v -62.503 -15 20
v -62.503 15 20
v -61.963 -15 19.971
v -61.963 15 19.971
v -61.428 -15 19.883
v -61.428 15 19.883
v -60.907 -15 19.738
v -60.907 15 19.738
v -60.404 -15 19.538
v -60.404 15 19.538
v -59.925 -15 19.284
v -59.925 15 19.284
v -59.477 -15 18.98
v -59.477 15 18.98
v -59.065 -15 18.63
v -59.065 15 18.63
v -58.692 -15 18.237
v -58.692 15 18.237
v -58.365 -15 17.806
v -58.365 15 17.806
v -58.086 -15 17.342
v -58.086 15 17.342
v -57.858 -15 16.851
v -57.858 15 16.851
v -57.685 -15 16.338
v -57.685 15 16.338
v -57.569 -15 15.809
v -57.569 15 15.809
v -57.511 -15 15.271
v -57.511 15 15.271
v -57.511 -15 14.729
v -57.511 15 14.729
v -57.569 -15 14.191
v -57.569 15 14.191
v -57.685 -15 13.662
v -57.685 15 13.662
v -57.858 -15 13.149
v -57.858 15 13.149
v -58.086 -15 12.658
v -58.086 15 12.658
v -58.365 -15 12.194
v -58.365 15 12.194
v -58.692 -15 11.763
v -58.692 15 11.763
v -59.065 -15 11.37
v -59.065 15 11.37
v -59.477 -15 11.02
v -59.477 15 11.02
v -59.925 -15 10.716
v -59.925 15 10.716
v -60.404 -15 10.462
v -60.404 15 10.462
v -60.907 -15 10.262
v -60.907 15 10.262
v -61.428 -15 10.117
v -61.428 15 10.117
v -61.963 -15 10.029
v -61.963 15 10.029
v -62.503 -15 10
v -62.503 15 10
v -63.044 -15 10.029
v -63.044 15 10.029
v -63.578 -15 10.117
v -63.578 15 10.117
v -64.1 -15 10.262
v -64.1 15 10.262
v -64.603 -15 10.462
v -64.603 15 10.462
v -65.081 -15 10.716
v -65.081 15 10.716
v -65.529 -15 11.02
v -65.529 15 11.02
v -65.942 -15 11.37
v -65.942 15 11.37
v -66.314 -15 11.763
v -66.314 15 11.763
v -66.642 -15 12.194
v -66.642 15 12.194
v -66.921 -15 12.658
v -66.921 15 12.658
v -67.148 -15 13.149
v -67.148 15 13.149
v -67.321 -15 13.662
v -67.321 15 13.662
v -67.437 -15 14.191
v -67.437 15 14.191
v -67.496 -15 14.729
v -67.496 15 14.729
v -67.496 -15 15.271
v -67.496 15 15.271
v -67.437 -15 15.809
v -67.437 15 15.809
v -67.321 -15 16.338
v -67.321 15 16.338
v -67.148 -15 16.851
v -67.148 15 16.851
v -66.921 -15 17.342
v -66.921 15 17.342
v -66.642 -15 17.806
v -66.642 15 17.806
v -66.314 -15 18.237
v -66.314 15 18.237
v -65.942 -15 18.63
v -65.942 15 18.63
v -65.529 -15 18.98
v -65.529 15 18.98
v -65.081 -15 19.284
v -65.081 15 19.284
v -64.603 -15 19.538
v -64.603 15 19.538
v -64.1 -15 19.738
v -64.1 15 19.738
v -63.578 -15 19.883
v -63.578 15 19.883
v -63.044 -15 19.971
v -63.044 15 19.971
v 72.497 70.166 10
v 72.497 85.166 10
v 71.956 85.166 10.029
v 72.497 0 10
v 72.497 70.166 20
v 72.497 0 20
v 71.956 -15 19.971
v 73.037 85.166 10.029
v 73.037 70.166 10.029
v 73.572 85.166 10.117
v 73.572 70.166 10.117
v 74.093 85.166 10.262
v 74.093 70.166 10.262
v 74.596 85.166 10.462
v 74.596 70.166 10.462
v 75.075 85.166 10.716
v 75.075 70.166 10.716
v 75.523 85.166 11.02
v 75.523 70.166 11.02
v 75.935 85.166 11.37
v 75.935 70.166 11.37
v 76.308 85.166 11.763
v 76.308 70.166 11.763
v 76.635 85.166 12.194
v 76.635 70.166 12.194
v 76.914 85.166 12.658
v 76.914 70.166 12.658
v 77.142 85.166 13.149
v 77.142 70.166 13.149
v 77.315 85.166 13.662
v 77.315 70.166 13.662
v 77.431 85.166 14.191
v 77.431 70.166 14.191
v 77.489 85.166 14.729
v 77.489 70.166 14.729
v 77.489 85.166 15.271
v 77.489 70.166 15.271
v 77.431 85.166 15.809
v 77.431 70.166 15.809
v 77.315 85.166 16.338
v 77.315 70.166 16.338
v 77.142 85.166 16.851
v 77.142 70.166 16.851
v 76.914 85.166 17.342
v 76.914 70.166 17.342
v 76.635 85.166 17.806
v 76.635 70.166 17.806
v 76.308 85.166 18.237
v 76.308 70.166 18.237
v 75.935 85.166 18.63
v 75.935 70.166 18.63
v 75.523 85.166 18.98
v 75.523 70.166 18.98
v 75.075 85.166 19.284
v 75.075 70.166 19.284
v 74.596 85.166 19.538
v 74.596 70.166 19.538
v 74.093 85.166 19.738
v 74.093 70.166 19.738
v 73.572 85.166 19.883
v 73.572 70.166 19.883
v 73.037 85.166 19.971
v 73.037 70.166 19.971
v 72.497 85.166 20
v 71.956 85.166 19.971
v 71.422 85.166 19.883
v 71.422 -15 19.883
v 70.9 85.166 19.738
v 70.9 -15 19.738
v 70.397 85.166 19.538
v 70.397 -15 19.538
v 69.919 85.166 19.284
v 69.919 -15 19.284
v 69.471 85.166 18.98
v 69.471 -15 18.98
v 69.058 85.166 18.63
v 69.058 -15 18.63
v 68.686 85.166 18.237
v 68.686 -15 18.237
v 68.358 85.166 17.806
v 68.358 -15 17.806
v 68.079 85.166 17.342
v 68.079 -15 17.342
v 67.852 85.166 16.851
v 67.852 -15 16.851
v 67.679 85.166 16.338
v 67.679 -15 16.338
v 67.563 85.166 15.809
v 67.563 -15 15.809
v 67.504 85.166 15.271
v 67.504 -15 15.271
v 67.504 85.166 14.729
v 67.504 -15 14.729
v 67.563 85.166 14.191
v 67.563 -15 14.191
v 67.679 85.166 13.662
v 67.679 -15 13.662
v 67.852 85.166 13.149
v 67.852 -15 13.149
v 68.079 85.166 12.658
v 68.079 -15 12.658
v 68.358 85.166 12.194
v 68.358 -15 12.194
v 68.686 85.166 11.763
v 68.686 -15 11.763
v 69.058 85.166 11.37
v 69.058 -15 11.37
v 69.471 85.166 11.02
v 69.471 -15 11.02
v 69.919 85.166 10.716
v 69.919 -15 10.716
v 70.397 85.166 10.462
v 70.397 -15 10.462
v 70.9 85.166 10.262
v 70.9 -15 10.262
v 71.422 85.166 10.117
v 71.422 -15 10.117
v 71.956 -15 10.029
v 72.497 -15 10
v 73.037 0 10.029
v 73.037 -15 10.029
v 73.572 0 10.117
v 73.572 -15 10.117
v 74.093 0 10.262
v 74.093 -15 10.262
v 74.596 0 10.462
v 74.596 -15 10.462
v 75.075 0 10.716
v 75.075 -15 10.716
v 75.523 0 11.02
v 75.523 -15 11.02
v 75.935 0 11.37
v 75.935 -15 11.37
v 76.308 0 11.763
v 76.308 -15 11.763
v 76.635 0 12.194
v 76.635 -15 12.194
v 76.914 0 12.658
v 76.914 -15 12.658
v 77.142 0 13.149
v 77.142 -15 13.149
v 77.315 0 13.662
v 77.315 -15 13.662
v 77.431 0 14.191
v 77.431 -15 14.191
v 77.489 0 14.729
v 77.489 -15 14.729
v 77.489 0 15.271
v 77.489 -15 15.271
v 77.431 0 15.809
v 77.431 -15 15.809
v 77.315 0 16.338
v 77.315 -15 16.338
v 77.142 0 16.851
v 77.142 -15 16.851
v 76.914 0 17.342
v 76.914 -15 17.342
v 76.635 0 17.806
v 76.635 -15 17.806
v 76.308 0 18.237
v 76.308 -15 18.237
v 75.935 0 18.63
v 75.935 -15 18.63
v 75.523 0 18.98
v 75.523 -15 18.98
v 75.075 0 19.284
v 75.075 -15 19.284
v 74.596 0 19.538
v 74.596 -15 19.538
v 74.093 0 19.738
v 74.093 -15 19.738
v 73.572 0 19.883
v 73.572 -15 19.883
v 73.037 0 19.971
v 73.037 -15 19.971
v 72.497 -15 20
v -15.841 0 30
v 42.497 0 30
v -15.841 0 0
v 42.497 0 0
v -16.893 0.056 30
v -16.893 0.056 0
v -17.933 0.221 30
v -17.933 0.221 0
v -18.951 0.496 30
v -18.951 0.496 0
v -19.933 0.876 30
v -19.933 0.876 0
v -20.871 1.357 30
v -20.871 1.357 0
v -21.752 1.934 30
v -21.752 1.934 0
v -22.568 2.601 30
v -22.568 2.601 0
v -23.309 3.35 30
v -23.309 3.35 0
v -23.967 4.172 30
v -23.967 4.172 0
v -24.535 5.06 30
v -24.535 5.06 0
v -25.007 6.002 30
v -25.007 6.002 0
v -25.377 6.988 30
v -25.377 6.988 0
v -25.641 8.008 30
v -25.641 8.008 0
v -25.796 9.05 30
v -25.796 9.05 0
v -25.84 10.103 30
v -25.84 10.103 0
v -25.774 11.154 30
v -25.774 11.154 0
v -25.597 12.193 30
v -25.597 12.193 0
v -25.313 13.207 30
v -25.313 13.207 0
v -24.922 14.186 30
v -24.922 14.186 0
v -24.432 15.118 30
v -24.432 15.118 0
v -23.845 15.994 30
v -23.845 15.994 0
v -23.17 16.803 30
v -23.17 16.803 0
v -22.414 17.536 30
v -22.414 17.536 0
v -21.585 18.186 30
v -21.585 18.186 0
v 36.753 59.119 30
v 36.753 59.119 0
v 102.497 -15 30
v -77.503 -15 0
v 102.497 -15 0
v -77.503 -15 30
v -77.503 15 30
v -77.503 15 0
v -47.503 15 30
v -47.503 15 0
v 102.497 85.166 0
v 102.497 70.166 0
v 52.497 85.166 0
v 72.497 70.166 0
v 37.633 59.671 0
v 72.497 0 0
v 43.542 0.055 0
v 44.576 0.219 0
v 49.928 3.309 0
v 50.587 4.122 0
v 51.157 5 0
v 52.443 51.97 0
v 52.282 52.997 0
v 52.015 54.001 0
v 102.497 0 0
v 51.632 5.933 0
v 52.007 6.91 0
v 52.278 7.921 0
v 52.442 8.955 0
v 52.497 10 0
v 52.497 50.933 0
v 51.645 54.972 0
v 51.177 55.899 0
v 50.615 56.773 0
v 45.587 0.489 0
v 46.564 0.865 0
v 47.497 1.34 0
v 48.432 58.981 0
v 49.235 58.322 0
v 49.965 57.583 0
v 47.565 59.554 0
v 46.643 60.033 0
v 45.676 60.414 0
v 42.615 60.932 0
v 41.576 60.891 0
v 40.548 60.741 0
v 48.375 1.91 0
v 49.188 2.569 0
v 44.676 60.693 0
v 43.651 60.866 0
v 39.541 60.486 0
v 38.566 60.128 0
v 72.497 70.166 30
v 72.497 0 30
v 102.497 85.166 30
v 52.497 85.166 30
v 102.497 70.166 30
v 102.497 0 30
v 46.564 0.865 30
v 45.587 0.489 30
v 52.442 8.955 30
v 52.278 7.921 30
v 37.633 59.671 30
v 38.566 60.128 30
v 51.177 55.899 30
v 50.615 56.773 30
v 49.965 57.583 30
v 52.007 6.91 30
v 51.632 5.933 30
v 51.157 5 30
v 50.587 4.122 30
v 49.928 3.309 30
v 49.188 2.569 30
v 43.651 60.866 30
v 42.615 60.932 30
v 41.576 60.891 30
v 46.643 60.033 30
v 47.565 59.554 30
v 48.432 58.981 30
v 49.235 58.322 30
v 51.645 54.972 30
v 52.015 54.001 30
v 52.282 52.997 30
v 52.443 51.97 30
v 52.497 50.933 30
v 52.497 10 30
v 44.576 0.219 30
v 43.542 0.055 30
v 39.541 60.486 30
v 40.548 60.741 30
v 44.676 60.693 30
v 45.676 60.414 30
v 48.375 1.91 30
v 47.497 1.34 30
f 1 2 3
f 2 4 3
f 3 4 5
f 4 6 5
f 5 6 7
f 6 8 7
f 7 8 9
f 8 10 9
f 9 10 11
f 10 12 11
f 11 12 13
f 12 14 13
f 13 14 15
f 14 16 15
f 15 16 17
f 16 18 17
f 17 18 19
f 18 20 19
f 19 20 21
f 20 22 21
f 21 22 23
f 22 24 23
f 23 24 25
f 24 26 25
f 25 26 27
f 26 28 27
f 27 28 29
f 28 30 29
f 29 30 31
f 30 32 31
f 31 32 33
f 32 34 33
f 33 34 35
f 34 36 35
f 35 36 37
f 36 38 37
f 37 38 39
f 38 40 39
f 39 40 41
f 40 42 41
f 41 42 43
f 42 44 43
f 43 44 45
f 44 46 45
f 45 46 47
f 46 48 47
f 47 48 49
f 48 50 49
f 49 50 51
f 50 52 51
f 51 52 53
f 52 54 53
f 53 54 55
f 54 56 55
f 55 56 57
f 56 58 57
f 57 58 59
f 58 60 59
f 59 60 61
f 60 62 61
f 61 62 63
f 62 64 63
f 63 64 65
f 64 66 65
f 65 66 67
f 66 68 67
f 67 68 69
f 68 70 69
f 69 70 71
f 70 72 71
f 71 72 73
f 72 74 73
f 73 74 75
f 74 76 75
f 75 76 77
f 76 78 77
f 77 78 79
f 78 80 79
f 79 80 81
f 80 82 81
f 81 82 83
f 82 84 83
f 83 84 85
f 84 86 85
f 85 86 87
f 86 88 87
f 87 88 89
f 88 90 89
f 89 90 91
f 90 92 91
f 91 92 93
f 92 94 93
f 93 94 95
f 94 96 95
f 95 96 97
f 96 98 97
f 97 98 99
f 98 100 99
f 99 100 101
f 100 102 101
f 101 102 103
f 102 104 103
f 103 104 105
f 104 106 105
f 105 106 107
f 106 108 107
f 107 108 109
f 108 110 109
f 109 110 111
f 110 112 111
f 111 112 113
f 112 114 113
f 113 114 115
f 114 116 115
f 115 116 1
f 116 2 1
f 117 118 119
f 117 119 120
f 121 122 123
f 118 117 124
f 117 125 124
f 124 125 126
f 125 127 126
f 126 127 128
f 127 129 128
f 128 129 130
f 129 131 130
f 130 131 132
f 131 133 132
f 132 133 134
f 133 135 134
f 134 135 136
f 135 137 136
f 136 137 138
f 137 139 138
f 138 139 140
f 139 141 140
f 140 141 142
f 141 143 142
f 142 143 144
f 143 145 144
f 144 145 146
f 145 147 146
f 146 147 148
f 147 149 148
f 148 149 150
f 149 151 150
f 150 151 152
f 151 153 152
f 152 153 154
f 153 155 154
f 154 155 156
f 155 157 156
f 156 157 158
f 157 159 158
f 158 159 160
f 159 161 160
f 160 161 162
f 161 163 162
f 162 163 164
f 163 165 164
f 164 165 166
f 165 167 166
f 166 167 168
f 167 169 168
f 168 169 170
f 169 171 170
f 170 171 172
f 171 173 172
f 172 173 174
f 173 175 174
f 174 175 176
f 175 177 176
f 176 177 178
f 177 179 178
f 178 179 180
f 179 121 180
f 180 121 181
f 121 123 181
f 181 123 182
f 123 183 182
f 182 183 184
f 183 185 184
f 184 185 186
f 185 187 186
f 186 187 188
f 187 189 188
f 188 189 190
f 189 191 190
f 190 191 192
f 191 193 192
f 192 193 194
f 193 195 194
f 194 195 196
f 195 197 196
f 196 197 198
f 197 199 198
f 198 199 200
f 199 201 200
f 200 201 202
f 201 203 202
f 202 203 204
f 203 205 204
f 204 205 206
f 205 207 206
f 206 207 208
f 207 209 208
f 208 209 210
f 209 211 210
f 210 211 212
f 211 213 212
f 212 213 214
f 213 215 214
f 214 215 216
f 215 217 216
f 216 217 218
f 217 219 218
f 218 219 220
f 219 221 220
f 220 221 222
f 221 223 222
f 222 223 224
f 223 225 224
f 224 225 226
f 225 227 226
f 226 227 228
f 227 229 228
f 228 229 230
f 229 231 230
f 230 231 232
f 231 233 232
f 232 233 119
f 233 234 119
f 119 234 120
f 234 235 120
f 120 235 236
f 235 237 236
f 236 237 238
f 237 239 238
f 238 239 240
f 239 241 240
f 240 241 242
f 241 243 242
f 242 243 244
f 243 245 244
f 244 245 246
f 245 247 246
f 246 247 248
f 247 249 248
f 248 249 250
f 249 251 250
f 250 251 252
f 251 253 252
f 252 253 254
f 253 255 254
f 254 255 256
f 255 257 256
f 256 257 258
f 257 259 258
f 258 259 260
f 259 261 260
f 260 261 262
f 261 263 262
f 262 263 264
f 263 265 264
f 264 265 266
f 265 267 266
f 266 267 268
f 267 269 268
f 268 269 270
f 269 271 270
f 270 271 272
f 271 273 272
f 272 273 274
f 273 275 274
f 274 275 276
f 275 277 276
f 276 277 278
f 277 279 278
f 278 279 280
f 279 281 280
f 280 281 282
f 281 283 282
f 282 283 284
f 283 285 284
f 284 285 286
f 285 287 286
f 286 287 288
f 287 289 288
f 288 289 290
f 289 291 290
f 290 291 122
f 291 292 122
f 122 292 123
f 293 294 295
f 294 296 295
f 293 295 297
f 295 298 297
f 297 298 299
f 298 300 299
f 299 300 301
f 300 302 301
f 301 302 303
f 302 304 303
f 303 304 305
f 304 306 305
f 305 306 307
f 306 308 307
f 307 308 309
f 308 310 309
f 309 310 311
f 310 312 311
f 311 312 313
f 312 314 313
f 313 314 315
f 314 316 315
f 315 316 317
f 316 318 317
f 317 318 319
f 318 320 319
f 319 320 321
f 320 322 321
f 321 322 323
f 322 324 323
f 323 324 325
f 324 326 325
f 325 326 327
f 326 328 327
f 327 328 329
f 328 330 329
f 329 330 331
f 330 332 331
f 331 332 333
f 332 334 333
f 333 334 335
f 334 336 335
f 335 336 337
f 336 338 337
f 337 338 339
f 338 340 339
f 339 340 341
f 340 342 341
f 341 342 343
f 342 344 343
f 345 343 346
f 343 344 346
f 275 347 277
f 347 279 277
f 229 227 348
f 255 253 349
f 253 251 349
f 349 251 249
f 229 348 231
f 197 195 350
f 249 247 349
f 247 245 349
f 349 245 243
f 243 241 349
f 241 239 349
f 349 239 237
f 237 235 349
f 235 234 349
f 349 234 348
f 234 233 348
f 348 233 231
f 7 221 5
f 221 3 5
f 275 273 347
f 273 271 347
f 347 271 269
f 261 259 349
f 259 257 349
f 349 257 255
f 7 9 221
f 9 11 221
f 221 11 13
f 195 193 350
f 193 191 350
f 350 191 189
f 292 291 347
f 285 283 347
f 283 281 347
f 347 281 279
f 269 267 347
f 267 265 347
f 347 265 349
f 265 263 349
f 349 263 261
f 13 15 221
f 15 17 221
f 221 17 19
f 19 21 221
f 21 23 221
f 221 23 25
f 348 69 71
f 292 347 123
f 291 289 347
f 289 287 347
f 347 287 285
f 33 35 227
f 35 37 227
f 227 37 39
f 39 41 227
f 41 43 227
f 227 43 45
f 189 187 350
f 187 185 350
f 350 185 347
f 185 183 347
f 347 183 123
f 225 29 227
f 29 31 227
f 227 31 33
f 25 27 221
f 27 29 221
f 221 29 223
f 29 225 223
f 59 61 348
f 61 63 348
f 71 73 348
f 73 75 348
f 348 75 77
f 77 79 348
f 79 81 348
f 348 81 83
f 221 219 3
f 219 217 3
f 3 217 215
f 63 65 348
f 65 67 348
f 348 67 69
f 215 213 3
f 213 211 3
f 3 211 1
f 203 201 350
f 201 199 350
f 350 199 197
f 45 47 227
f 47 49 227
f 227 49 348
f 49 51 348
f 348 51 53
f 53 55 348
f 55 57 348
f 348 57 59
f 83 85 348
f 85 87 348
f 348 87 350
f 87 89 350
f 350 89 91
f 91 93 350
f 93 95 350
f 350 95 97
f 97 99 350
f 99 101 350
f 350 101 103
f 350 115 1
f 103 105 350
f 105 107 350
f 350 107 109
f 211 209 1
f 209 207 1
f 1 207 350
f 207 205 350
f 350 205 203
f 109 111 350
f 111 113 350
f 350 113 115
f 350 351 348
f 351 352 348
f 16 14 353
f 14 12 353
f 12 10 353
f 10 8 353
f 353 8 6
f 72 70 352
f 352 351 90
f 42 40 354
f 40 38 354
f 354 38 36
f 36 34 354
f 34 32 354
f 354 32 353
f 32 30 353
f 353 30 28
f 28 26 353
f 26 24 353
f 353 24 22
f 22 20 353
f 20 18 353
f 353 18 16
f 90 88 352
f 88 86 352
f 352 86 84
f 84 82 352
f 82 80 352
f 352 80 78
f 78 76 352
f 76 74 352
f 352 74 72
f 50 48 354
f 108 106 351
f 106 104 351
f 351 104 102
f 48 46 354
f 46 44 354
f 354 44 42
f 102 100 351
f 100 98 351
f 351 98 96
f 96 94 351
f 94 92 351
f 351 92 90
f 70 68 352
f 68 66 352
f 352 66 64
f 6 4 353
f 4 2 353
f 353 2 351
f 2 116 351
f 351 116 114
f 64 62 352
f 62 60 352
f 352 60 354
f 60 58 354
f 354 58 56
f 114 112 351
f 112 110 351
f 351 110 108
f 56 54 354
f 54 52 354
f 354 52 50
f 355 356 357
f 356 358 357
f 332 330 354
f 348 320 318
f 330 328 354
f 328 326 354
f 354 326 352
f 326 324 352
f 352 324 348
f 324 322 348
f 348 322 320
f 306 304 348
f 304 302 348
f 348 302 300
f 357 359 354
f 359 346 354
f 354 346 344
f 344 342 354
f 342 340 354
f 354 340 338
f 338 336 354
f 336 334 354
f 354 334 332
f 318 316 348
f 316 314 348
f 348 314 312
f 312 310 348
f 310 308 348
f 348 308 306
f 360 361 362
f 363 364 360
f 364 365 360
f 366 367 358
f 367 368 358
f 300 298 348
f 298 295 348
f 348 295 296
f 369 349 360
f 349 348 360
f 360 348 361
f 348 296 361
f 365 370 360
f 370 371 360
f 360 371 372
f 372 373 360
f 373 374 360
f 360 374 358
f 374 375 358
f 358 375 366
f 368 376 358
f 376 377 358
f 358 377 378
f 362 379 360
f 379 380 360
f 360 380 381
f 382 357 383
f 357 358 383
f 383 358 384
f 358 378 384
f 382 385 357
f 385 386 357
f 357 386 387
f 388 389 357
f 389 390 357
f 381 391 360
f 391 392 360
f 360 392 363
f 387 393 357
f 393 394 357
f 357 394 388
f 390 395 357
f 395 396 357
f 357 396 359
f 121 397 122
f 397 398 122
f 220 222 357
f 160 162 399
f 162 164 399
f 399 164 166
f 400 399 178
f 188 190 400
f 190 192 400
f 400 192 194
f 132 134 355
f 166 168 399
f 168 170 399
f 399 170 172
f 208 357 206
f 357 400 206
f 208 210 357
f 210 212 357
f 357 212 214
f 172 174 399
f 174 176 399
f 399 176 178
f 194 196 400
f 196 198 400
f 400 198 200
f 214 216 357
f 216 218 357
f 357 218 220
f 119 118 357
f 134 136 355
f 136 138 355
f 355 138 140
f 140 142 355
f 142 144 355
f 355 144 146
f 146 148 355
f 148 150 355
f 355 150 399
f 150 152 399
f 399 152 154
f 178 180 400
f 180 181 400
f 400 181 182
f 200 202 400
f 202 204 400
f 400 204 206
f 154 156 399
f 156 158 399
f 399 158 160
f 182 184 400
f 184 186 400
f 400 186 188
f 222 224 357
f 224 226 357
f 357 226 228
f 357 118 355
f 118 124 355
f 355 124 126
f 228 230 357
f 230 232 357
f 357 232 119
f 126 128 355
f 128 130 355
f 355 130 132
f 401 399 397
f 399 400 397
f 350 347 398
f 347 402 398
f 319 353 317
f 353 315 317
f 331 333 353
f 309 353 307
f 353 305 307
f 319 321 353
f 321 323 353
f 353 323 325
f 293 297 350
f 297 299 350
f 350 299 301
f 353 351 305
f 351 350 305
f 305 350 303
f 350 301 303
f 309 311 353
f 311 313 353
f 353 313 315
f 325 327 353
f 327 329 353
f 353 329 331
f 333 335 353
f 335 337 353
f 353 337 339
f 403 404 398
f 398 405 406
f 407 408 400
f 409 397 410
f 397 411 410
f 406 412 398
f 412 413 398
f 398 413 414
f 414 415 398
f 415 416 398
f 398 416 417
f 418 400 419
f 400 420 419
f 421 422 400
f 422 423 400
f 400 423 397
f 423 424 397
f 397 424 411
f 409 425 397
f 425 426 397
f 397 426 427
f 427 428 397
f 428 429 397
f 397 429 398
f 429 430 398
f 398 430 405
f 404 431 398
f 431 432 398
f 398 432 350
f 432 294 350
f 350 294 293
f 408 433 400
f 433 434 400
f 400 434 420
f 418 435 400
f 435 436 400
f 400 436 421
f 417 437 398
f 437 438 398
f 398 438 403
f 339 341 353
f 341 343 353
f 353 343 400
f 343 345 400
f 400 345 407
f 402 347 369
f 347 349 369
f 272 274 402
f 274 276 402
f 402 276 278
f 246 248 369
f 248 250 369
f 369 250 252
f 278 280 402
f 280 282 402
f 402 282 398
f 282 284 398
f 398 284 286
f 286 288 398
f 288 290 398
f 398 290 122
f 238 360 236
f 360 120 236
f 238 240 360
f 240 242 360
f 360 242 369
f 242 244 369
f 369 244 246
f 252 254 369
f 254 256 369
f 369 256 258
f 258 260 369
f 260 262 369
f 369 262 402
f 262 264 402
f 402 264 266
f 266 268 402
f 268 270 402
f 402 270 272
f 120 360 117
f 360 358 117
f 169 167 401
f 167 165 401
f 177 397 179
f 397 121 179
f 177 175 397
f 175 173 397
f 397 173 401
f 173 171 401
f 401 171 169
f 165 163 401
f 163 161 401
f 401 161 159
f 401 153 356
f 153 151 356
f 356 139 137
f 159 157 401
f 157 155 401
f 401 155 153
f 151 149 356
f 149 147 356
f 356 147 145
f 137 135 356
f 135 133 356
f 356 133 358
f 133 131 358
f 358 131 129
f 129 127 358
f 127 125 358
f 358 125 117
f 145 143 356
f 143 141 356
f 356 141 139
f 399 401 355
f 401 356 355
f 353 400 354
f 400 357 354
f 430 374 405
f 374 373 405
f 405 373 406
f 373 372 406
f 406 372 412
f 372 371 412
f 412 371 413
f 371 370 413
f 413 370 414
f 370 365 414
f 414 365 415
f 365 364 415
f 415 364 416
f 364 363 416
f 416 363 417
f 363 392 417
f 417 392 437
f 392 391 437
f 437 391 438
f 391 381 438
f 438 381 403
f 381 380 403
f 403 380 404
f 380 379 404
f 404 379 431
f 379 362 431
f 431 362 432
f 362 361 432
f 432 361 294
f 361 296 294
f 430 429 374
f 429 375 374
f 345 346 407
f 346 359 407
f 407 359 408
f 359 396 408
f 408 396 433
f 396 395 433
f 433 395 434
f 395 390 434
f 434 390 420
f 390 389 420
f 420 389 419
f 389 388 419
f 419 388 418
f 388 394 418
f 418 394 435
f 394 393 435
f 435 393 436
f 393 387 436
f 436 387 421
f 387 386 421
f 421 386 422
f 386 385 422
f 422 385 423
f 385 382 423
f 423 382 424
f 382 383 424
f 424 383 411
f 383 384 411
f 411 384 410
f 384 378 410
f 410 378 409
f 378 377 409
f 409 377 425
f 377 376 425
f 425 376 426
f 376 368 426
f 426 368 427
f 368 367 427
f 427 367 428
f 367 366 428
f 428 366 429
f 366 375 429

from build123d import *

# Parameters (mm, degrees)
BOSS_EXTRUDE1_DEPTH = 30
SKETCH2_R           = 5
CUT_EXTRUDE1_DEPTH  = 90


with BuildPart() as part:
    # Sketch1 → Boss-Extrude1 (new body)
    with BuildSketch(Plane.XY):
        Polygon((-77.503184713, 15), (-77.503184713, -15), (102.496815287, -15), (102.496815287, 0), (72.496815287, 0), (72.496815287, 70.165605096), (102.496815287, 70.165605096), (102.496815287, 85.165605096), (52.496815287, 85.165605096), (-47.503184713, 15), align=None)
        with BuildLine():
            Line((52.496815287, 50.932984608), (52.496815287, 10))
            ThreePointArc((52.496815287, 10), (49.567883098, 2.928932188), (42.496815287, 0))
            Line((42.496815287, 0), (-15.840862486, 0))
            ThreePointArc((-15.840862486, 0), (-25.376570483, 6.988310608), (-21.58458061, 18.185945401))
            Line((-21.58458061, 18.185945401), (36.753097163, 59.11893001))
            ThreePointArc((36.753097163, 59.11893001), (47.109993083, 59.805334388), (52.496815287, 50.932984608))
        make_face(mode=Mode.SUBTRACT)
    extrude(amount=BOSS_EXTRUDE1_DEPTH)

    # Sketch2 → Cut-Extrude1 (cut, symmetric)
    with BuildSketch(Plane(origin=(0, 15, 0), x_dir=(1, 0, 0), z_dir=(0, 1, 0))):
        with Locations(Location((-62.503184713, -15, 0), (0, 0, 270))):
            Circle(SKETCH2_R)
        with Locations(Location((72.496815287, -15, 0), (0, 0, 270))):
            Circle(SKETCH2_R)
    extrude(amount=CUT_EXTRUDE1_DEPTH, both=True, mode=Mode.SUBTRACT)


solid = part.part
